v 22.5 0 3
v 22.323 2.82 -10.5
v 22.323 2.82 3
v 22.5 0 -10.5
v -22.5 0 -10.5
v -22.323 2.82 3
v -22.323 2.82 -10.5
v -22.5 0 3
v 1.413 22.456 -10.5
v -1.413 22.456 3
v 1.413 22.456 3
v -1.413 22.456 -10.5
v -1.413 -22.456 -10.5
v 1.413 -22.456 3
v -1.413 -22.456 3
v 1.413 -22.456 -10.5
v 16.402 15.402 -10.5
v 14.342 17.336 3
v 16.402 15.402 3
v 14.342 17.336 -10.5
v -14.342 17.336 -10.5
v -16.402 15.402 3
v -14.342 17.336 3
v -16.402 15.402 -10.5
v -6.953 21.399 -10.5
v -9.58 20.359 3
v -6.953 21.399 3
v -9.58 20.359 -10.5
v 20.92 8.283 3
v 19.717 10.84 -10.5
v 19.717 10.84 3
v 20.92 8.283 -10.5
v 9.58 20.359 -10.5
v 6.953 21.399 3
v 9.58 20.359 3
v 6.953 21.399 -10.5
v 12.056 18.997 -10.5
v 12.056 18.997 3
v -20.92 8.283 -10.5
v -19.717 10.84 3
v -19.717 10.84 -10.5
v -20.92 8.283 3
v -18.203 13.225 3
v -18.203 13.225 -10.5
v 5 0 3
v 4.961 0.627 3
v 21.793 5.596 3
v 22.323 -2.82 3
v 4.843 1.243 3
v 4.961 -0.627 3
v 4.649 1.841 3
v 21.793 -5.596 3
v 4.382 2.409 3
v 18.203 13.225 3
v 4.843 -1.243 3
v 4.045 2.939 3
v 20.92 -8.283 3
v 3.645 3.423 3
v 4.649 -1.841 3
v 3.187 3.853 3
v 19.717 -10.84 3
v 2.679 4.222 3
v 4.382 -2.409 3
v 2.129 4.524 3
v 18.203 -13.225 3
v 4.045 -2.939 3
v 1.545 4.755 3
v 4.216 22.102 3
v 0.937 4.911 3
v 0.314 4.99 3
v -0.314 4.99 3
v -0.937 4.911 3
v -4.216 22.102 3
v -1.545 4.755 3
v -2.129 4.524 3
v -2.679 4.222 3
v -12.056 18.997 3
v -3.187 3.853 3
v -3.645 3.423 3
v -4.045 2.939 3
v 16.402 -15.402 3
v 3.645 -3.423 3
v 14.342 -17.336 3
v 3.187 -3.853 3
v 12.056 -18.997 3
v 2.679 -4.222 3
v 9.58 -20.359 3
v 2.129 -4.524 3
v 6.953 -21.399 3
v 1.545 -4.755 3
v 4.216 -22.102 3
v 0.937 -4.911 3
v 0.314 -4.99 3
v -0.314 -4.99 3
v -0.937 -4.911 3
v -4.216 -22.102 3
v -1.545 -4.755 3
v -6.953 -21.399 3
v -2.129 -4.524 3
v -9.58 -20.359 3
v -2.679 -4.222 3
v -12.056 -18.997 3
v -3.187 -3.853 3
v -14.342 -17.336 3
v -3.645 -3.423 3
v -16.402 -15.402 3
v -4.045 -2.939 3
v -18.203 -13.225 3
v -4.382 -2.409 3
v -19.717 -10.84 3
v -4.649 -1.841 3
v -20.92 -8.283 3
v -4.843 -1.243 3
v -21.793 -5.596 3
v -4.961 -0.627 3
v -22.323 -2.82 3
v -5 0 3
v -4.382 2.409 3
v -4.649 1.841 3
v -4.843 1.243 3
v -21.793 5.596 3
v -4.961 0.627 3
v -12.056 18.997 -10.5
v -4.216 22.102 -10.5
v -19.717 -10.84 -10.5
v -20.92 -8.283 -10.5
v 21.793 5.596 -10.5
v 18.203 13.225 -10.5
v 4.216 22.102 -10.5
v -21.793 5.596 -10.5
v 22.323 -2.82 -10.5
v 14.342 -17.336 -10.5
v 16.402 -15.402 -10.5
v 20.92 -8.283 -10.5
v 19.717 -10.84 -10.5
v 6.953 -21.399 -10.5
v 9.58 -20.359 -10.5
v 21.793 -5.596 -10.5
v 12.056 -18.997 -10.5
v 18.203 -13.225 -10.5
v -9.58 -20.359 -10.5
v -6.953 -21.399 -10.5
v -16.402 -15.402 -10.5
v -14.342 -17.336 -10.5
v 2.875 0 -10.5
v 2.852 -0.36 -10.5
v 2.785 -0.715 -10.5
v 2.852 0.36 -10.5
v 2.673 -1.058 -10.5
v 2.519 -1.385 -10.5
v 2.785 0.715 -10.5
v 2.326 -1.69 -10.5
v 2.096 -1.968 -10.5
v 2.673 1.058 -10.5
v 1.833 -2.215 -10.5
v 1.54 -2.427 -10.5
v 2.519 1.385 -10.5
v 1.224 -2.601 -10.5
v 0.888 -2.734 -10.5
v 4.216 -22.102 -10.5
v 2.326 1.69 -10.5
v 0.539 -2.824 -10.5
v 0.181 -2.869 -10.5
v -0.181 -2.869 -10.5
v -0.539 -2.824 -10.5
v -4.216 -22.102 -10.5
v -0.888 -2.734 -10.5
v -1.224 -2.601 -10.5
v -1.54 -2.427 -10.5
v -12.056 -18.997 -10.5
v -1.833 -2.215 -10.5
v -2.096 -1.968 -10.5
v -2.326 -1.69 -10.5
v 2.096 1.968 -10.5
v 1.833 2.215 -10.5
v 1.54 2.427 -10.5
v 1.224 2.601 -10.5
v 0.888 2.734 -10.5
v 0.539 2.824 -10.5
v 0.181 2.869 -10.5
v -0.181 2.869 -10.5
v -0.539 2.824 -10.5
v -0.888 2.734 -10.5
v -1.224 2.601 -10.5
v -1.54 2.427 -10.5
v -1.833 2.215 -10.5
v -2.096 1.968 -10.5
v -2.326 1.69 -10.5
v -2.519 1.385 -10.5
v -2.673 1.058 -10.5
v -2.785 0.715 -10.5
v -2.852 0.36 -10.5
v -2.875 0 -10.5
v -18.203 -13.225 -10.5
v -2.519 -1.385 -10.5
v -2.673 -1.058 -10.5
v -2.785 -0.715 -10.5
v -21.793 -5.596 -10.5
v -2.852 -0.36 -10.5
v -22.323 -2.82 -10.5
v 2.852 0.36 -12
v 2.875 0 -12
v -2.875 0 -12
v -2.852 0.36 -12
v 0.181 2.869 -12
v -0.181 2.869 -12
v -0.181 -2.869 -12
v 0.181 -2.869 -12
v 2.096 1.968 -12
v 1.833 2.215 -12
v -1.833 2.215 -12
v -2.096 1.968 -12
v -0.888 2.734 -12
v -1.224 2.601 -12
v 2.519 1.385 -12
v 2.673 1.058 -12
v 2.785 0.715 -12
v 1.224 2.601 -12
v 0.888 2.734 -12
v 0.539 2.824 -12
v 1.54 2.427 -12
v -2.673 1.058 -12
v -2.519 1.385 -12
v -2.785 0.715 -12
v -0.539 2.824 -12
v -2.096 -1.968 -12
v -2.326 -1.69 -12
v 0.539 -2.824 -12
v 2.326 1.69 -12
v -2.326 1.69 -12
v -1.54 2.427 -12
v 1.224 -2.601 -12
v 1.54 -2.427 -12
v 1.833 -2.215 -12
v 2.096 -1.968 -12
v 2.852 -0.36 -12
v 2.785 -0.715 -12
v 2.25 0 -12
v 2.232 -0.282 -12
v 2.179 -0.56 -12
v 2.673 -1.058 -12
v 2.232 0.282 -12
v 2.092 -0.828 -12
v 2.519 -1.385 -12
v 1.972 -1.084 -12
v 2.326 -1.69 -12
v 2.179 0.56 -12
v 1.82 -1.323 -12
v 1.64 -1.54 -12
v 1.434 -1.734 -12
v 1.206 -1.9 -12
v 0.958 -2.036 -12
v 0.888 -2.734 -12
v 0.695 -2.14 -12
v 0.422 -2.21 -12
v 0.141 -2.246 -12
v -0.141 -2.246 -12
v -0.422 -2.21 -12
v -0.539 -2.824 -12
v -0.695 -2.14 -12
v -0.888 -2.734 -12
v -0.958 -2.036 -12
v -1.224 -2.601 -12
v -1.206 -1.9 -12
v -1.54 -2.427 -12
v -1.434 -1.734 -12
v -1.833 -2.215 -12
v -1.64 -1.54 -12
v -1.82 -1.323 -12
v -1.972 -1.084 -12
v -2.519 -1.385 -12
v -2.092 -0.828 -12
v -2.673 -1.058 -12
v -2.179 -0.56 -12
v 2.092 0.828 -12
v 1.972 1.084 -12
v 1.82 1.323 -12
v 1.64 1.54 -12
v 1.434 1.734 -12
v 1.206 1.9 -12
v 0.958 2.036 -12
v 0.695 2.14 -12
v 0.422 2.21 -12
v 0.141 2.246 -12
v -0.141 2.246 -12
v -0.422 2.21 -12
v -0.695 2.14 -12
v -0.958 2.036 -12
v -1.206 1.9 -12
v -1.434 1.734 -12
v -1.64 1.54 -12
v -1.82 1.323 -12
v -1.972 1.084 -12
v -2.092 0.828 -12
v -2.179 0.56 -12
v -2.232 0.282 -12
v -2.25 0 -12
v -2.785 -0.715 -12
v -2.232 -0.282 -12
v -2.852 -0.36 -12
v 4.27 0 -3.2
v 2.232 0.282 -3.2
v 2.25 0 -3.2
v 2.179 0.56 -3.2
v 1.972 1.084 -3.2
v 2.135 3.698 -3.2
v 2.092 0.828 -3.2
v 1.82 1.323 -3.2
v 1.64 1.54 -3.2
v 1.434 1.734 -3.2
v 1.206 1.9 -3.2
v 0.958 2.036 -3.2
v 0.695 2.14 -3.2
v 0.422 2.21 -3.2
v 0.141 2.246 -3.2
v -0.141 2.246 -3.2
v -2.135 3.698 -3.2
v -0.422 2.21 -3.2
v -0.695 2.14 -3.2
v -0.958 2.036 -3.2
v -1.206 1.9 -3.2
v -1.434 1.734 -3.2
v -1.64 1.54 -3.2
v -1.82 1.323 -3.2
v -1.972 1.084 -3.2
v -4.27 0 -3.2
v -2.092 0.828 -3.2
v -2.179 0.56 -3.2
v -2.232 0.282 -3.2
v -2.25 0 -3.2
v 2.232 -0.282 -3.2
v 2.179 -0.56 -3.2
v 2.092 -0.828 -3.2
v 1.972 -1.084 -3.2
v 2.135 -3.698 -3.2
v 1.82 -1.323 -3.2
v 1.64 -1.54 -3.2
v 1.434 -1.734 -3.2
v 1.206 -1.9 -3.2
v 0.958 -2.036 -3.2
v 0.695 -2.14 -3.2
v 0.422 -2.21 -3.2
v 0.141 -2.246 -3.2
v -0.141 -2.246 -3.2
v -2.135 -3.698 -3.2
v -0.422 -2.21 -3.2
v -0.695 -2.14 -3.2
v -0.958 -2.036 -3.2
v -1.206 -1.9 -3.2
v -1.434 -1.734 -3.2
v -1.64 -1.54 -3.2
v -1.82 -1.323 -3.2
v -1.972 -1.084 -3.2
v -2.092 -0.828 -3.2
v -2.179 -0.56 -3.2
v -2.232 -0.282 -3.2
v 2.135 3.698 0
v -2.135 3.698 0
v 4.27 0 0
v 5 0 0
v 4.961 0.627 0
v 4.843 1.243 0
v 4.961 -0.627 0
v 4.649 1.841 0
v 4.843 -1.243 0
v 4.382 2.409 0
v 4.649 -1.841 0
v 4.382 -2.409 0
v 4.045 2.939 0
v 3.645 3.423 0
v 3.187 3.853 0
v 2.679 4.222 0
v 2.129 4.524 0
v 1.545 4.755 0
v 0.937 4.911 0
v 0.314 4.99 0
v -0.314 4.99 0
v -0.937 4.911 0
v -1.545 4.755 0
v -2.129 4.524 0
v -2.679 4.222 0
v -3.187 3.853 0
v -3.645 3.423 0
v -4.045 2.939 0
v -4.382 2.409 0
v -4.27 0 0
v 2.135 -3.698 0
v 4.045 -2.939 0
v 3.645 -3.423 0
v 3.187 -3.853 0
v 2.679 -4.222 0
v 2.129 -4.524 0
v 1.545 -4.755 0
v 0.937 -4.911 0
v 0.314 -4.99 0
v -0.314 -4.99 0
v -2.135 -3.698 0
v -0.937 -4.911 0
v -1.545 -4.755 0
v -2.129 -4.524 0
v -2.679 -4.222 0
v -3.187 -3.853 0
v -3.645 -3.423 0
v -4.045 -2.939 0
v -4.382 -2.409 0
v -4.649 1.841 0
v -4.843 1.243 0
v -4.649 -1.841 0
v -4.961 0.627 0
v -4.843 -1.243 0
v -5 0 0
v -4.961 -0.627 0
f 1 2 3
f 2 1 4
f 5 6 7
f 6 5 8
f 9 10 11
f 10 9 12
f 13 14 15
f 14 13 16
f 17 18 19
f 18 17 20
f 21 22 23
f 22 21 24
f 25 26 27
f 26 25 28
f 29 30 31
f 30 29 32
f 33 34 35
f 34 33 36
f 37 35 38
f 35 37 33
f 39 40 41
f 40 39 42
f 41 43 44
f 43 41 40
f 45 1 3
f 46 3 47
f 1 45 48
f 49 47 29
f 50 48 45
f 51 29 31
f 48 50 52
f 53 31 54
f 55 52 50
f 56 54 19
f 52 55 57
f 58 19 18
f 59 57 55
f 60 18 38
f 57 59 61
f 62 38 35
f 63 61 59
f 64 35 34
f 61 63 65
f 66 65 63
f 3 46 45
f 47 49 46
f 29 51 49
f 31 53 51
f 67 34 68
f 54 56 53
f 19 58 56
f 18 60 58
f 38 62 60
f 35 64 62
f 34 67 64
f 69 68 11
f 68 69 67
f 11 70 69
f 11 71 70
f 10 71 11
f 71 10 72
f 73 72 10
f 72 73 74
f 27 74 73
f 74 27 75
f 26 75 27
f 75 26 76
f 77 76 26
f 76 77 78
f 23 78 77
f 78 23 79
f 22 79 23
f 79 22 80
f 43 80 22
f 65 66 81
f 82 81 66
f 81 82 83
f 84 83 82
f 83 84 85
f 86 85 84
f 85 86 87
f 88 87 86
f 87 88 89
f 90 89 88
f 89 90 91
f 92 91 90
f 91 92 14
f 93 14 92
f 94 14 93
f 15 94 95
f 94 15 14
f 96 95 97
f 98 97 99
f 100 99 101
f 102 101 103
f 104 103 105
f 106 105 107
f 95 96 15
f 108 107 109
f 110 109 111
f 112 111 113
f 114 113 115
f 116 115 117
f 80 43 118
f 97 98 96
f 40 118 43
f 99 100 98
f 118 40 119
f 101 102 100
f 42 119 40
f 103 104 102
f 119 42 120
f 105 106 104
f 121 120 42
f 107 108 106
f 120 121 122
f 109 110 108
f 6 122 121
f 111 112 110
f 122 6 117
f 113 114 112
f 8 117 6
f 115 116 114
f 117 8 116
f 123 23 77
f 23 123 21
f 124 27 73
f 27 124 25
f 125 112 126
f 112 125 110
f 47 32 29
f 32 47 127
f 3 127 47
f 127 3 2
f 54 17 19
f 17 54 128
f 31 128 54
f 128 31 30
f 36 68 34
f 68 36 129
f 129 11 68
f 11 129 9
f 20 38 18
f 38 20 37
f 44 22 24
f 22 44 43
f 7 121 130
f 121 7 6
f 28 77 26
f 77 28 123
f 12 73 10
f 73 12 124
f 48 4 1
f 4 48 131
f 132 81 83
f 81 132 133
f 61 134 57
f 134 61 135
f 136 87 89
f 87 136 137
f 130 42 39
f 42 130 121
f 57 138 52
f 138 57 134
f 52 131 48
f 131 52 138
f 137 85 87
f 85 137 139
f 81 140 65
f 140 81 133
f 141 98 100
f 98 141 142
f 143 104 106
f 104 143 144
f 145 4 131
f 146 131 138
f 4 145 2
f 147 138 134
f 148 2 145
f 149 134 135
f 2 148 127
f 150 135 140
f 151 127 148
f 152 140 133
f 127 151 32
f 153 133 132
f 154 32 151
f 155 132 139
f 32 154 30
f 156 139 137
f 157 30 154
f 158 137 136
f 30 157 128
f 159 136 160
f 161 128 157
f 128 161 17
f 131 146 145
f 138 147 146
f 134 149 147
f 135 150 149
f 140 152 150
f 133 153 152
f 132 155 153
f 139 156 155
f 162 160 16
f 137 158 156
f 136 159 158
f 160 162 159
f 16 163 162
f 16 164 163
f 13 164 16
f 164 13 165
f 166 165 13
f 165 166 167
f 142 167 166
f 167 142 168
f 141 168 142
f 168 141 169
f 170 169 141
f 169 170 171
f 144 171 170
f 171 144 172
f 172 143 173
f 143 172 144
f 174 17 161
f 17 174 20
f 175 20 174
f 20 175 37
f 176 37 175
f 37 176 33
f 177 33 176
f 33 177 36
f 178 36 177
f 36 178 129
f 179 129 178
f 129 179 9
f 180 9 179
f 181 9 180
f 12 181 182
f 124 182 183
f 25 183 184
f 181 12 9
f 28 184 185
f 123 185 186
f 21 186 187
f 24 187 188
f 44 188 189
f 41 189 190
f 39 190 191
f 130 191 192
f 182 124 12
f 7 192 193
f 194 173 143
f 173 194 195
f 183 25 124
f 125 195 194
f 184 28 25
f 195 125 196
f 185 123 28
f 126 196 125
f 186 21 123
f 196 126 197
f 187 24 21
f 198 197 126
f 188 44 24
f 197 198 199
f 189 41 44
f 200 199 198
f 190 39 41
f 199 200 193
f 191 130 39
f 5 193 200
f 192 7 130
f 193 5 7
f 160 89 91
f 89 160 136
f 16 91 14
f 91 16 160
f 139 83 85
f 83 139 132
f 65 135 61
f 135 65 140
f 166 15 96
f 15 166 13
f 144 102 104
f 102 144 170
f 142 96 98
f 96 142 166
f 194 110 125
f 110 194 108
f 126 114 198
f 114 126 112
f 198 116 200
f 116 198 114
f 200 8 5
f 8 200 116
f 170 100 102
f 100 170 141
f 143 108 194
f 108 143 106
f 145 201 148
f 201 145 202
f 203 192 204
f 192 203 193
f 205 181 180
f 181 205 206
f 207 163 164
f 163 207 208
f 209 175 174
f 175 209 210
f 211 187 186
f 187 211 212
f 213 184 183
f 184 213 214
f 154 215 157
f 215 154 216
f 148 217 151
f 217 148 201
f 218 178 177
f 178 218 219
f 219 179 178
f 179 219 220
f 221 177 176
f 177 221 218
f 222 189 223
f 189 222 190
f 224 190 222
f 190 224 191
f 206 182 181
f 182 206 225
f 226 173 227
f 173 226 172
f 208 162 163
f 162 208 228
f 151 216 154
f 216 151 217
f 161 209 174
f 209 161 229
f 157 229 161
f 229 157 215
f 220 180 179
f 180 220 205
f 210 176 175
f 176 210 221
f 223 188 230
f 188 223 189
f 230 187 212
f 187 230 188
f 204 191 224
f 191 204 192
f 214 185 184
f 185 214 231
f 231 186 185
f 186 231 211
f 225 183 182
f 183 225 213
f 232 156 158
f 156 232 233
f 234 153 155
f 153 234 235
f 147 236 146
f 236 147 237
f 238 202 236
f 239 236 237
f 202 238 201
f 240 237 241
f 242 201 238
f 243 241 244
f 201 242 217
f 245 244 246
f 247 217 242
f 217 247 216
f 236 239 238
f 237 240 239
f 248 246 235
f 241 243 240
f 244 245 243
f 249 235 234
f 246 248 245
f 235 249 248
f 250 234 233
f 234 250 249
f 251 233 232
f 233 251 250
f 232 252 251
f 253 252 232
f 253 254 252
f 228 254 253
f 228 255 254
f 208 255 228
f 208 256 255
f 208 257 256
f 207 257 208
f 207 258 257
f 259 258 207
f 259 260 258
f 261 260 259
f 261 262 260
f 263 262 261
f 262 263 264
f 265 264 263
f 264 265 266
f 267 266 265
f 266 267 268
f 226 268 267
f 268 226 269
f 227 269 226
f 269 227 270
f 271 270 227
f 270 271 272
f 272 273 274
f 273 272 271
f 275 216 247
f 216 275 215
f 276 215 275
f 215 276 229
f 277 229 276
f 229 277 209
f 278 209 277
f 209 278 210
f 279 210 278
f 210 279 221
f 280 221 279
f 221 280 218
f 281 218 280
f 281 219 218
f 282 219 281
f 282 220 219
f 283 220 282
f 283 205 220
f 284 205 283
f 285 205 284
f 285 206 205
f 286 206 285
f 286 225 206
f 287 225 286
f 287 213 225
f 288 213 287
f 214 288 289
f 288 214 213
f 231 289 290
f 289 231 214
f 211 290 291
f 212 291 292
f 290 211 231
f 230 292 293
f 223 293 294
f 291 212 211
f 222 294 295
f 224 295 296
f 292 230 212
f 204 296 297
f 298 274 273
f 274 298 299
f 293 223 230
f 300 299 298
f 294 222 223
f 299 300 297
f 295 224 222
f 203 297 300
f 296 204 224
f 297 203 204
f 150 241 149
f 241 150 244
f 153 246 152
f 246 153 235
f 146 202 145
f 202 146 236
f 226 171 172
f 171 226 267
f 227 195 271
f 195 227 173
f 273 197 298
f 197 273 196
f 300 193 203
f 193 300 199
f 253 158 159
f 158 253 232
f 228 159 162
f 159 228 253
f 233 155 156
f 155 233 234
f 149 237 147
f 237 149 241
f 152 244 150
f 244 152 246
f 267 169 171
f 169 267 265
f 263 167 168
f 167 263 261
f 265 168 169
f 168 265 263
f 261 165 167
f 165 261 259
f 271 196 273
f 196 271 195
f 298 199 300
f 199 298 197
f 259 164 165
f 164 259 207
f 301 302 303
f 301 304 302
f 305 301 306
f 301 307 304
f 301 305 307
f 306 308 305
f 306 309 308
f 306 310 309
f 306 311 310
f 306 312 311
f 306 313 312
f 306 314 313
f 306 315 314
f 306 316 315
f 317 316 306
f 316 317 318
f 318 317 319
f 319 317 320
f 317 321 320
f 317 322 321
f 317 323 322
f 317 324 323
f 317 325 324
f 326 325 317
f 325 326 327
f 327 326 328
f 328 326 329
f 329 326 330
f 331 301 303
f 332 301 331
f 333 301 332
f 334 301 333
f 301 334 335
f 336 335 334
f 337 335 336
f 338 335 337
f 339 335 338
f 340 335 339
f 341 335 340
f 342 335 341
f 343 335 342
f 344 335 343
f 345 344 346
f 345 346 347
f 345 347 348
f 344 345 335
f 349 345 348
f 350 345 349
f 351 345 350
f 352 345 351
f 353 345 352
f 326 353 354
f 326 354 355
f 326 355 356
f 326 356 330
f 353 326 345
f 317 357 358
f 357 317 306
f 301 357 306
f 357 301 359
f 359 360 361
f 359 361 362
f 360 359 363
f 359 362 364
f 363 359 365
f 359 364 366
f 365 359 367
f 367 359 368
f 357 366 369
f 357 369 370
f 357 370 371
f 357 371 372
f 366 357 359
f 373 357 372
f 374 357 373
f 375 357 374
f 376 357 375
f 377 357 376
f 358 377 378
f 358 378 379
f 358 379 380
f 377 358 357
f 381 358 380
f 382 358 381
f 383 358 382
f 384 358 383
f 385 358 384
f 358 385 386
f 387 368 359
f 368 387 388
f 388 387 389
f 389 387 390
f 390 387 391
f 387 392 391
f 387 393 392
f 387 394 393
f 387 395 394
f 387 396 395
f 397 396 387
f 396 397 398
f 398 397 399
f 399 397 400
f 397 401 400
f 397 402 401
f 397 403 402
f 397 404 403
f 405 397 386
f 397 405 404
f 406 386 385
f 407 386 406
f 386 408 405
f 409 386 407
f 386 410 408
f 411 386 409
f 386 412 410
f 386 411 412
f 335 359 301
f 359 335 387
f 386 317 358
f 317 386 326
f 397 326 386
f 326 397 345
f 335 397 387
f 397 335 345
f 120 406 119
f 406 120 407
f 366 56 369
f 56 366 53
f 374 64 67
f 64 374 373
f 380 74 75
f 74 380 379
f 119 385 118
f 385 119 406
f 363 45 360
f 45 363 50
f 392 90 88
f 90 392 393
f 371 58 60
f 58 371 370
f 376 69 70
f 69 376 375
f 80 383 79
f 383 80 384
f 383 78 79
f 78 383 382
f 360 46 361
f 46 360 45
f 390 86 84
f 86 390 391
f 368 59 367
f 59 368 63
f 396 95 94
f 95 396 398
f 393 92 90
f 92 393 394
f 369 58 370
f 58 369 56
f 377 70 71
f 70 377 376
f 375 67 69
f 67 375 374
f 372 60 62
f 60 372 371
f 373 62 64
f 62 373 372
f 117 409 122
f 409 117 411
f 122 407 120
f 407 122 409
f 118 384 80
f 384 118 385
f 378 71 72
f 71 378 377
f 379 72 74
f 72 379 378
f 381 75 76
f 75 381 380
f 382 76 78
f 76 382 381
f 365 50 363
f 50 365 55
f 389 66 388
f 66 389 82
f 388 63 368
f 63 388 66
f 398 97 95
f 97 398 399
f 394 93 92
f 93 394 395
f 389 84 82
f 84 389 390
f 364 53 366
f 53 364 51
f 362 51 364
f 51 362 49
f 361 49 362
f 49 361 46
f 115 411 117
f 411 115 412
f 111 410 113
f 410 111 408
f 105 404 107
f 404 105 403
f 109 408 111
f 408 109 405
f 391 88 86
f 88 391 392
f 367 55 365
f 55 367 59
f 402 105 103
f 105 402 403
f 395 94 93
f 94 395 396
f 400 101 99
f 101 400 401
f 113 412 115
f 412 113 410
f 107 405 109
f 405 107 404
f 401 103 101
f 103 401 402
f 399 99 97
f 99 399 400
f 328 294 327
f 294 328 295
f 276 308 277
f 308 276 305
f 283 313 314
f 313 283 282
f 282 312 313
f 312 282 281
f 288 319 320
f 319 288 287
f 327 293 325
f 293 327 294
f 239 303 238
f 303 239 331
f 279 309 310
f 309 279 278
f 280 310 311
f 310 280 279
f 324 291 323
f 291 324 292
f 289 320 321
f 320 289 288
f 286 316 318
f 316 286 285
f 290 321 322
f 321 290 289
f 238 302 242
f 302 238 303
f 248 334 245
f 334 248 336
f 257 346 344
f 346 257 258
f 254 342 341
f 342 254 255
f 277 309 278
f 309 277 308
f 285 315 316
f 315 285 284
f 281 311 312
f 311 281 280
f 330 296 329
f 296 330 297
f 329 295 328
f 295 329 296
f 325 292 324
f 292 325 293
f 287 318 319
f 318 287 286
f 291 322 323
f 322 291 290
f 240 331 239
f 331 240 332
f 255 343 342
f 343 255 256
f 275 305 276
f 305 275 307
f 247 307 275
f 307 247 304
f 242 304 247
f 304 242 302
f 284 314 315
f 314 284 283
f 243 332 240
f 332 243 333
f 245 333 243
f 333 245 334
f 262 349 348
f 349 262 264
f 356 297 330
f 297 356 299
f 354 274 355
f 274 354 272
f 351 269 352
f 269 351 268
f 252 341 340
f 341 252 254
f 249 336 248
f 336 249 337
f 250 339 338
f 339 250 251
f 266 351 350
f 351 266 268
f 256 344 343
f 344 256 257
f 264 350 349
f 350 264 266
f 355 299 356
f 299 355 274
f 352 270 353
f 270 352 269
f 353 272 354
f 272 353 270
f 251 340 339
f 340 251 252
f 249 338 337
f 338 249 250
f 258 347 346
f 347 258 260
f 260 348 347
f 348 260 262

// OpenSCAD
$fn = 50;

difference() {
	union() {
		translate(v = [0, 0, -10.5]) {
			cylinder(h = 13.5, r = 22.5);
		}
		#translate(v = [0, 0, -12.0]) {
			cylinder(h = 12, r = 2.875);
		}
	}
	union() {
		translate(v = [0, 0, 0]) {
			rotate(a = [0, 0, 0]) {
				difference() {
					union() {
						translate(v = [0, 0, -3.2]) {
							linear_extrude(height = 3.2) {
								polygon(points = [[4.2698, 0.0], [2.1349000000000005, 3.697755269078796], [-2.134899999999999, 3.6977552690787965], [-4.2698, 5.228996902999369e-16], [-2.134900000000002, -3.6977552690787956], [2.1348999999999974, -3.697755269078798]]);
							}
						}
					}
					union();
				}
			}
		}
		#cylinder(h = 3, r = 5.0);
		#translate(v = [0, 0, -100.0]) {
			cylinder(h = 200, r = 2.25);
		}
	}
}
